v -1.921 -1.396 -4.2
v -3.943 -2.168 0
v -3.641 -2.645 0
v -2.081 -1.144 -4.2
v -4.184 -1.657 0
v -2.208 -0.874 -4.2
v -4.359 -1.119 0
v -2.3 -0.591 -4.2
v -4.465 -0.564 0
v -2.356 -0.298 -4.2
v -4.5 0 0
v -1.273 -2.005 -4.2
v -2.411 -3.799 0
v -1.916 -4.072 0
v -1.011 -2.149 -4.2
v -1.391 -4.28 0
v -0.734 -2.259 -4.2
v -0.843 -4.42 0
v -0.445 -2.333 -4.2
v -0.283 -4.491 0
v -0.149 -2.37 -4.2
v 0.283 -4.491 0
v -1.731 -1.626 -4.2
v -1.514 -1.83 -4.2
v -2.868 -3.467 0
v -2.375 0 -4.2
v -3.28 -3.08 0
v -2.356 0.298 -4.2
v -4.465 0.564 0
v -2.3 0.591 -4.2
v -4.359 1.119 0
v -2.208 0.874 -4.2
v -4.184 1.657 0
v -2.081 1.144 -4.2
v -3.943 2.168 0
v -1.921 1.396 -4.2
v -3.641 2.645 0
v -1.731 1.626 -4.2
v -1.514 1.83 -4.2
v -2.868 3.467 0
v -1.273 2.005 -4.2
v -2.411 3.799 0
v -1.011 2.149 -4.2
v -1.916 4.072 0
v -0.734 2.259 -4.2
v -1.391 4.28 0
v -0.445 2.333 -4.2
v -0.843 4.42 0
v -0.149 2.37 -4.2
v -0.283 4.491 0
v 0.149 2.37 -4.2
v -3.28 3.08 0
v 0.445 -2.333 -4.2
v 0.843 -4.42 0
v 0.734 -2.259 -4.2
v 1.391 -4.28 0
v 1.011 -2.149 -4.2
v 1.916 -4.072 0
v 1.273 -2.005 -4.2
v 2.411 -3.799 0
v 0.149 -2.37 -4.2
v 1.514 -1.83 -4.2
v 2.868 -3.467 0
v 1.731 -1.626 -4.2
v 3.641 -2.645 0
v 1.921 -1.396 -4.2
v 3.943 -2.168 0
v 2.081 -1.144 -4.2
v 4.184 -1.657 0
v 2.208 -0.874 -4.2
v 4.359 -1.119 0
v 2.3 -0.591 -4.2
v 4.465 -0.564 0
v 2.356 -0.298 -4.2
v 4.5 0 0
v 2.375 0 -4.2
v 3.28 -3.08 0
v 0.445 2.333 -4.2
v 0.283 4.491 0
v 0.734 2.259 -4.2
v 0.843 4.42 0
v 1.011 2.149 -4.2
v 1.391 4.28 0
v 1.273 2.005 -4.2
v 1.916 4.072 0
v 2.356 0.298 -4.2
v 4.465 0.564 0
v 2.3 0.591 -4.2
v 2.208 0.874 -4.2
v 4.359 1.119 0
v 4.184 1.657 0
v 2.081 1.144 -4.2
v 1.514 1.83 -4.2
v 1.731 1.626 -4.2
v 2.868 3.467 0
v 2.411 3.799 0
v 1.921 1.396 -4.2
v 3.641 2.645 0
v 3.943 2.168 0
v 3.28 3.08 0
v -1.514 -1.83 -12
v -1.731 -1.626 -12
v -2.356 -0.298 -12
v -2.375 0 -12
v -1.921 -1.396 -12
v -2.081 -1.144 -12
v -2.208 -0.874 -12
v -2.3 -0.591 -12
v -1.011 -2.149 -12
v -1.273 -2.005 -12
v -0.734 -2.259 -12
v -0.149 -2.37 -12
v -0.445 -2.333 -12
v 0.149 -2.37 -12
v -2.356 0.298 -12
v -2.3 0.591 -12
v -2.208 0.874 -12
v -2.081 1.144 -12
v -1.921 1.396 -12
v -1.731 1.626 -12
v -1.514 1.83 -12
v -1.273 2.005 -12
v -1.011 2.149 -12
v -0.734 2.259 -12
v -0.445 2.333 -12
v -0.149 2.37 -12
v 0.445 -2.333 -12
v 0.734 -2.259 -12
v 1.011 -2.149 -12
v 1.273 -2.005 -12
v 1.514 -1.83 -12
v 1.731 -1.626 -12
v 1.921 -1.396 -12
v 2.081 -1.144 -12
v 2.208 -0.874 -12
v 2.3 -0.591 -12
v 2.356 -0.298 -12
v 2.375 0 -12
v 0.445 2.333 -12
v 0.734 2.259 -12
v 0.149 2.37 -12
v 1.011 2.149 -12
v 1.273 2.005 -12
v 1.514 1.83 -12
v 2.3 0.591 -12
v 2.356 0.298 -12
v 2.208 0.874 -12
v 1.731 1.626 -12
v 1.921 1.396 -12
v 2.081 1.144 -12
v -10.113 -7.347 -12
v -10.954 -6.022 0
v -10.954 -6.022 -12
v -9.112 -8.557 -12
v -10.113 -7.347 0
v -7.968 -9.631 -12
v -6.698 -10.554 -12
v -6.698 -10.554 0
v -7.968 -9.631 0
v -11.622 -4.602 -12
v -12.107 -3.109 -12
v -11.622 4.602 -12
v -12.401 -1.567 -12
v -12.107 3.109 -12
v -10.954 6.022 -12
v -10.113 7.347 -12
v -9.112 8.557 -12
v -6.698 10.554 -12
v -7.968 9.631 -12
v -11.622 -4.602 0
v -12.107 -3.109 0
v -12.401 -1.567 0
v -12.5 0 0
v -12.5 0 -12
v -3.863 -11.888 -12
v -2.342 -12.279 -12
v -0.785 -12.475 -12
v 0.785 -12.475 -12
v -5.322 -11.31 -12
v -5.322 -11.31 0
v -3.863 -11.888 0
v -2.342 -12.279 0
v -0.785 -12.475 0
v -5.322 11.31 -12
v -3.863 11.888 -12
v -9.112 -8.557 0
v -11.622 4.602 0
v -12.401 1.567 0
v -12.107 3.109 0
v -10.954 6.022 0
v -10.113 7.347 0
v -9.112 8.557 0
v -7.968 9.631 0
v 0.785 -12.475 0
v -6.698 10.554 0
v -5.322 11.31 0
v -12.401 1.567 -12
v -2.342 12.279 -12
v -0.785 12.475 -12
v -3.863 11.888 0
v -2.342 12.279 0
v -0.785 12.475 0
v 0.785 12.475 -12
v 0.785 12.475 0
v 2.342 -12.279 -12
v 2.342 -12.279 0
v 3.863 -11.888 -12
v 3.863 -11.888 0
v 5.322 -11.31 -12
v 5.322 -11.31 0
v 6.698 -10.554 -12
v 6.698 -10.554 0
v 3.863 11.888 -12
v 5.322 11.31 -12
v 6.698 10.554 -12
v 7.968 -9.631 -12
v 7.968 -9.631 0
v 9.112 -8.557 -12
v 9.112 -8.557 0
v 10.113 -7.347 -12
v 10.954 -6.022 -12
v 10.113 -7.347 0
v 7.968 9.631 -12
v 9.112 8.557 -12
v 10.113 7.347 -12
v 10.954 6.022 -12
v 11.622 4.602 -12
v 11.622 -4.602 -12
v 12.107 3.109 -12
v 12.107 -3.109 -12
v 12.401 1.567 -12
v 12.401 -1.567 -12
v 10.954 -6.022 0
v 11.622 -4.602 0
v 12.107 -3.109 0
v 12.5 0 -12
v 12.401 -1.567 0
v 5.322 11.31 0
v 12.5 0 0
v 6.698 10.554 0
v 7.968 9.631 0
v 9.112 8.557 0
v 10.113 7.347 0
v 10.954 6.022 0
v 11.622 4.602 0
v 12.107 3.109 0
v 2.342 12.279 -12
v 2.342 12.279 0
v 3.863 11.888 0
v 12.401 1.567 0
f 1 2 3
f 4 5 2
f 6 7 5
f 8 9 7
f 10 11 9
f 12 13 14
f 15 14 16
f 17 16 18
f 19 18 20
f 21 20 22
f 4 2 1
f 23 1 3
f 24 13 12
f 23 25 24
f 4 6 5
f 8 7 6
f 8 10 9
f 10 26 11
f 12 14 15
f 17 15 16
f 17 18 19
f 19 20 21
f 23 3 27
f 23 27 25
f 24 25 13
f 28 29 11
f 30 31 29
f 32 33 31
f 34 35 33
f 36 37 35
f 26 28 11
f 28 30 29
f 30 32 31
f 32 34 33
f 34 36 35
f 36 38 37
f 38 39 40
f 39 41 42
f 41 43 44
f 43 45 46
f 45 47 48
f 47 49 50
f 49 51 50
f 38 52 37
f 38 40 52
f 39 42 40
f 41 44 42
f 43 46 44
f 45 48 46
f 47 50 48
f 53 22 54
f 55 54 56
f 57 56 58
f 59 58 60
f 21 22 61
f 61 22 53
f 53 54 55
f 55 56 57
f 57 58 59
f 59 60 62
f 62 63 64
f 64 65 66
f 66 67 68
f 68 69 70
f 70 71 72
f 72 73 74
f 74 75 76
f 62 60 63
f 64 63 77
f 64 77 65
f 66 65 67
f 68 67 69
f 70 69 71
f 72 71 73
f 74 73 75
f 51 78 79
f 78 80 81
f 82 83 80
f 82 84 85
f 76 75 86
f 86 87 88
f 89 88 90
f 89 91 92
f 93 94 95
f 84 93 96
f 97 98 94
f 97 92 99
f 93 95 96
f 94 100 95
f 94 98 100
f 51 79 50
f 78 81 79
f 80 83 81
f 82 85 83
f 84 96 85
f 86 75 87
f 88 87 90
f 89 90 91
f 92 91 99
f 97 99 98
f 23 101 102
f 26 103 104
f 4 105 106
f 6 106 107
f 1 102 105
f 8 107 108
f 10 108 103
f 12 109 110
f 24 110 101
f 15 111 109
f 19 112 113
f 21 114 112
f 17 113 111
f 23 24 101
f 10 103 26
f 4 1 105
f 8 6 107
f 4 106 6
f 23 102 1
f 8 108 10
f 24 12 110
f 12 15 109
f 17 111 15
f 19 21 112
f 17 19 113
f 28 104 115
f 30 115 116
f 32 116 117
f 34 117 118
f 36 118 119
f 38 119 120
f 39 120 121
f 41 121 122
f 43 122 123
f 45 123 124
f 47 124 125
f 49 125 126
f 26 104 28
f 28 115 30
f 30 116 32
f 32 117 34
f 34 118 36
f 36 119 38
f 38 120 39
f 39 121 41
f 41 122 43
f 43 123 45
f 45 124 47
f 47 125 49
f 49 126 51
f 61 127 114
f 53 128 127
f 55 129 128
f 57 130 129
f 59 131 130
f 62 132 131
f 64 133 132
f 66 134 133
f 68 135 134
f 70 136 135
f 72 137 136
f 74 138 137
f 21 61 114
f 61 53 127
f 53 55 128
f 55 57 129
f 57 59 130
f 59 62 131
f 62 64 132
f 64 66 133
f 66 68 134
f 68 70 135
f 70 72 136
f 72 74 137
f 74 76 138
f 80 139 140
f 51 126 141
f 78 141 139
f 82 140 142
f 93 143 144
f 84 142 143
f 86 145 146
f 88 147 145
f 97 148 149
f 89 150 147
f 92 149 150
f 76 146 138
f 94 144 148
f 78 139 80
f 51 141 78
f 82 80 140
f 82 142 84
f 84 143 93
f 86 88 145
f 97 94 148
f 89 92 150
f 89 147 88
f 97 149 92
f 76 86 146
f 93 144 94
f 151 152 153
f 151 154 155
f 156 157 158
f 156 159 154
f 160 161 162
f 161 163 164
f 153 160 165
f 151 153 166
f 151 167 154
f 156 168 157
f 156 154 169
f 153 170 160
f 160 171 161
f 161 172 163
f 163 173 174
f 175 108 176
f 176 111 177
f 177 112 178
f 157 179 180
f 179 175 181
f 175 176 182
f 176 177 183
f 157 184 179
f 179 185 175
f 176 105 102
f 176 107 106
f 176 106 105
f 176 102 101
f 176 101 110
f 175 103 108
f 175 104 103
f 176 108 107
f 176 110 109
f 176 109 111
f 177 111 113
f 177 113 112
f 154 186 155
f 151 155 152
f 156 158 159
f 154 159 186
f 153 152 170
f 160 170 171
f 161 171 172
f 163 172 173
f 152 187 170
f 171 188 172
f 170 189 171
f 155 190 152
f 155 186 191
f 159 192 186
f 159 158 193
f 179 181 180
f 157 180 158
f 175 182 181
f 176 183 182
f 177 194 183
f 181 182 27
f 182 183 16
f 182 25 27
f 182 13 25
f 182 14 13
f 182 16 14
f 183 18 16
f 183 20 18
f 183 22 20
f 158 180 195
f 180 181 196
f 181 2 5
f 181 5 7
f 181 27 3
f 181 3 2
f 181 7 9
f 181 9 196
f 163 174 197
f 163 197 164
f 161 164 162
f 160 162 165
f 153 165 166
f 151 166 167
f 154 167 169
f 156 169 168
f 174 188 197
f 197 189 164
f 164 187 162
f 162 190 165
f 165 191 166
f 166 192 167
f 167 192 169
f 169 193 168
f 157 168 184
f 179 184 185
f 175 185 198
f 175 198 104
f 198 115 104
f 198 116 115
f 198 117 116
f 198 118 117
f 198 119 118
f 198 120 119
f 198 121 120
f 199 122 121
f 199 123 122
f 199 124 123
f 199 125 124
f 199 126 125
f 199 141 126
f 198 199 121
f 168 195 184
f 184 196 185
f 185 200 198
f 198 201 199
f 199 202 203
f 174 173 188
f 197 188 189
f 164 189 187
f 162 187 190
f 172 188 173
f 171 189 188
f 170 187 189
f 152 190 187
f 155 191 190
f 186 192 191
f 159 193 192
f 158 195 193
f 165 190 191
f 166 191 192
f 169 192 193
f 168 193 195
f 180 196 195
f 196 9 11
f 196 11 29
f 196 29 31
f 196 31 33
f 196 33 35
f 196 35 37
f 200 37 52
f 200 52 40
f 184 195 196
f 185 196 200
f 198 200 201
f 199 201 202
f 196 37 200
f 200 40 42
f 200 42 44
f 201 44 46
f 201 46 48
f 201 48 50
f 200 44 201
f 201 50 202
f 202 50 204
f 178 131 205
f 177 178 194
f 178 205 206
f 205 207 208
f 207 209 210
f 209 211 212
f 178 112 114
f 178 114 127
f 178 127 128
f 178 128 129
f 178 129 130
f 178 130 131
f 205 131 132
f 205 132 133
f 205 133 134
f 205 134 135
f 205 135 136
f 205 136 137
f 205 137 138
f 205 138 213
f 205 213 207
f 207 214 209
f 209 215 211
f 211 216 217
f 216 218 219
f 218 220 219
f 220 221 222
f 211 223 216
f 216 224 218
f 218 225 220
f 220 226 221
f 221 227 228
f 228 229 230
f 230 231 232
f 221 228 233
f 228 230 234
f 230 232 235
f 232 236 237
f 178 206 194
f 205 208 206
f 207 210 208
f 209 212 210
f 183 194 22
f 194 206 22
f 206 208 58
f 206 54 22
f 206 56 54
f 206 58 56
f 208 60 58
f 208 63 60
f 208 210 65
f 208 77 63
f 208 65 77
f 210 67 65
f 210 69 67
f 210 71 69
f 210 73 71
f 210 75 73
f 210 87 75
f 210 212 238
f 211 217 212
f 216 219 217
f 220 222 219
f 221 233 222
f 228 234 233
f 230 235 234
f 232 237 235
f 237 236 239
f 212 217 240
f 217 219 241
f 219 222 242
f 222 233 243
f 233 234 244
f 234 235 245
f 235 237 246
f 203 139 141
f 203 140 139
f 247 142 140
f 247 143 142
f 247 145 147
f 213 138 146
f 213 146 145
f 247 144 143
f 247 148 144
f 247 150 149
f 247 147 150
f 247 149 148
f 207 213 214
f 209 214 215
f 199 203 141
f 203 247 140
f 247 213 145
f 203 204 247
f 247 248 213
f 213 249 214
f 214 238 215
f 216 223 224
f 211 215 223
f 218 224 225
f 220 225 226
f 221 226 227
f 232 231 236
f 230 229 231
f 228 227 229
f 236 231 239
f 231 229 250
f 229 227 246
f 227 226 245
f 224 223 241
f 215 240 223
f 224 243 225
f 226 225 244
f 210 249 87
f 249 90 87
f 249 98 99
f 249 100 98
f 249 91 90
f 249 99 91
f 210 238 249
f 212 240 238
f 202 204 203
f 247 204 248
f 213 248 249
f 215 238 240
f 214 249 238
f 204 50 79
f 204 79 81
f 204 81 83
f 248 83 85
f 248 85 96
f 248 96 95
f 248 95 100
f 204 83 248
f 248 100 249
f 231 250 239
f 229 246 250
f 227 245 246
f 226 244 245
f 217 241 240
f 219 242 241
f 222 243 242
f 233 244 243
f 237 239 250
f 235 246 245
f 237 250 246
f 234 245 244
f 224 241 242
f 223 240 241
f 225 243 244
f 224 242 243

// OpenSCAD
$fn = 50;

difference() {
	union() {
		translate(v = [0, 0, -12.0]) {
			cylinder(h = 12, r = 12.5);
		}
	}
	union() {
		translate(v = [0, 0, 0]) {
			rotate(a = [0, 0, 0]) {
				difference() {
					union() {
						translate(v = [0, 0, -15.0]) {
							cylinder(h = 15, r = 2.25);
						}
						translate(v = [0, 0, -4.2]) {
							cylinder(h = 4.2, r1 = 2.375, r2 = 4.5);
						}
						translate(v = [0, 0, -15.0]) {
							cylinder(h = 15, r = 2.375);
						}
						translate(v = [0, 0, -15.0]) {
							cylinder(h = 15, r = 2.25);
						}
					}
					union();
				}
			}
		}
	}
}
